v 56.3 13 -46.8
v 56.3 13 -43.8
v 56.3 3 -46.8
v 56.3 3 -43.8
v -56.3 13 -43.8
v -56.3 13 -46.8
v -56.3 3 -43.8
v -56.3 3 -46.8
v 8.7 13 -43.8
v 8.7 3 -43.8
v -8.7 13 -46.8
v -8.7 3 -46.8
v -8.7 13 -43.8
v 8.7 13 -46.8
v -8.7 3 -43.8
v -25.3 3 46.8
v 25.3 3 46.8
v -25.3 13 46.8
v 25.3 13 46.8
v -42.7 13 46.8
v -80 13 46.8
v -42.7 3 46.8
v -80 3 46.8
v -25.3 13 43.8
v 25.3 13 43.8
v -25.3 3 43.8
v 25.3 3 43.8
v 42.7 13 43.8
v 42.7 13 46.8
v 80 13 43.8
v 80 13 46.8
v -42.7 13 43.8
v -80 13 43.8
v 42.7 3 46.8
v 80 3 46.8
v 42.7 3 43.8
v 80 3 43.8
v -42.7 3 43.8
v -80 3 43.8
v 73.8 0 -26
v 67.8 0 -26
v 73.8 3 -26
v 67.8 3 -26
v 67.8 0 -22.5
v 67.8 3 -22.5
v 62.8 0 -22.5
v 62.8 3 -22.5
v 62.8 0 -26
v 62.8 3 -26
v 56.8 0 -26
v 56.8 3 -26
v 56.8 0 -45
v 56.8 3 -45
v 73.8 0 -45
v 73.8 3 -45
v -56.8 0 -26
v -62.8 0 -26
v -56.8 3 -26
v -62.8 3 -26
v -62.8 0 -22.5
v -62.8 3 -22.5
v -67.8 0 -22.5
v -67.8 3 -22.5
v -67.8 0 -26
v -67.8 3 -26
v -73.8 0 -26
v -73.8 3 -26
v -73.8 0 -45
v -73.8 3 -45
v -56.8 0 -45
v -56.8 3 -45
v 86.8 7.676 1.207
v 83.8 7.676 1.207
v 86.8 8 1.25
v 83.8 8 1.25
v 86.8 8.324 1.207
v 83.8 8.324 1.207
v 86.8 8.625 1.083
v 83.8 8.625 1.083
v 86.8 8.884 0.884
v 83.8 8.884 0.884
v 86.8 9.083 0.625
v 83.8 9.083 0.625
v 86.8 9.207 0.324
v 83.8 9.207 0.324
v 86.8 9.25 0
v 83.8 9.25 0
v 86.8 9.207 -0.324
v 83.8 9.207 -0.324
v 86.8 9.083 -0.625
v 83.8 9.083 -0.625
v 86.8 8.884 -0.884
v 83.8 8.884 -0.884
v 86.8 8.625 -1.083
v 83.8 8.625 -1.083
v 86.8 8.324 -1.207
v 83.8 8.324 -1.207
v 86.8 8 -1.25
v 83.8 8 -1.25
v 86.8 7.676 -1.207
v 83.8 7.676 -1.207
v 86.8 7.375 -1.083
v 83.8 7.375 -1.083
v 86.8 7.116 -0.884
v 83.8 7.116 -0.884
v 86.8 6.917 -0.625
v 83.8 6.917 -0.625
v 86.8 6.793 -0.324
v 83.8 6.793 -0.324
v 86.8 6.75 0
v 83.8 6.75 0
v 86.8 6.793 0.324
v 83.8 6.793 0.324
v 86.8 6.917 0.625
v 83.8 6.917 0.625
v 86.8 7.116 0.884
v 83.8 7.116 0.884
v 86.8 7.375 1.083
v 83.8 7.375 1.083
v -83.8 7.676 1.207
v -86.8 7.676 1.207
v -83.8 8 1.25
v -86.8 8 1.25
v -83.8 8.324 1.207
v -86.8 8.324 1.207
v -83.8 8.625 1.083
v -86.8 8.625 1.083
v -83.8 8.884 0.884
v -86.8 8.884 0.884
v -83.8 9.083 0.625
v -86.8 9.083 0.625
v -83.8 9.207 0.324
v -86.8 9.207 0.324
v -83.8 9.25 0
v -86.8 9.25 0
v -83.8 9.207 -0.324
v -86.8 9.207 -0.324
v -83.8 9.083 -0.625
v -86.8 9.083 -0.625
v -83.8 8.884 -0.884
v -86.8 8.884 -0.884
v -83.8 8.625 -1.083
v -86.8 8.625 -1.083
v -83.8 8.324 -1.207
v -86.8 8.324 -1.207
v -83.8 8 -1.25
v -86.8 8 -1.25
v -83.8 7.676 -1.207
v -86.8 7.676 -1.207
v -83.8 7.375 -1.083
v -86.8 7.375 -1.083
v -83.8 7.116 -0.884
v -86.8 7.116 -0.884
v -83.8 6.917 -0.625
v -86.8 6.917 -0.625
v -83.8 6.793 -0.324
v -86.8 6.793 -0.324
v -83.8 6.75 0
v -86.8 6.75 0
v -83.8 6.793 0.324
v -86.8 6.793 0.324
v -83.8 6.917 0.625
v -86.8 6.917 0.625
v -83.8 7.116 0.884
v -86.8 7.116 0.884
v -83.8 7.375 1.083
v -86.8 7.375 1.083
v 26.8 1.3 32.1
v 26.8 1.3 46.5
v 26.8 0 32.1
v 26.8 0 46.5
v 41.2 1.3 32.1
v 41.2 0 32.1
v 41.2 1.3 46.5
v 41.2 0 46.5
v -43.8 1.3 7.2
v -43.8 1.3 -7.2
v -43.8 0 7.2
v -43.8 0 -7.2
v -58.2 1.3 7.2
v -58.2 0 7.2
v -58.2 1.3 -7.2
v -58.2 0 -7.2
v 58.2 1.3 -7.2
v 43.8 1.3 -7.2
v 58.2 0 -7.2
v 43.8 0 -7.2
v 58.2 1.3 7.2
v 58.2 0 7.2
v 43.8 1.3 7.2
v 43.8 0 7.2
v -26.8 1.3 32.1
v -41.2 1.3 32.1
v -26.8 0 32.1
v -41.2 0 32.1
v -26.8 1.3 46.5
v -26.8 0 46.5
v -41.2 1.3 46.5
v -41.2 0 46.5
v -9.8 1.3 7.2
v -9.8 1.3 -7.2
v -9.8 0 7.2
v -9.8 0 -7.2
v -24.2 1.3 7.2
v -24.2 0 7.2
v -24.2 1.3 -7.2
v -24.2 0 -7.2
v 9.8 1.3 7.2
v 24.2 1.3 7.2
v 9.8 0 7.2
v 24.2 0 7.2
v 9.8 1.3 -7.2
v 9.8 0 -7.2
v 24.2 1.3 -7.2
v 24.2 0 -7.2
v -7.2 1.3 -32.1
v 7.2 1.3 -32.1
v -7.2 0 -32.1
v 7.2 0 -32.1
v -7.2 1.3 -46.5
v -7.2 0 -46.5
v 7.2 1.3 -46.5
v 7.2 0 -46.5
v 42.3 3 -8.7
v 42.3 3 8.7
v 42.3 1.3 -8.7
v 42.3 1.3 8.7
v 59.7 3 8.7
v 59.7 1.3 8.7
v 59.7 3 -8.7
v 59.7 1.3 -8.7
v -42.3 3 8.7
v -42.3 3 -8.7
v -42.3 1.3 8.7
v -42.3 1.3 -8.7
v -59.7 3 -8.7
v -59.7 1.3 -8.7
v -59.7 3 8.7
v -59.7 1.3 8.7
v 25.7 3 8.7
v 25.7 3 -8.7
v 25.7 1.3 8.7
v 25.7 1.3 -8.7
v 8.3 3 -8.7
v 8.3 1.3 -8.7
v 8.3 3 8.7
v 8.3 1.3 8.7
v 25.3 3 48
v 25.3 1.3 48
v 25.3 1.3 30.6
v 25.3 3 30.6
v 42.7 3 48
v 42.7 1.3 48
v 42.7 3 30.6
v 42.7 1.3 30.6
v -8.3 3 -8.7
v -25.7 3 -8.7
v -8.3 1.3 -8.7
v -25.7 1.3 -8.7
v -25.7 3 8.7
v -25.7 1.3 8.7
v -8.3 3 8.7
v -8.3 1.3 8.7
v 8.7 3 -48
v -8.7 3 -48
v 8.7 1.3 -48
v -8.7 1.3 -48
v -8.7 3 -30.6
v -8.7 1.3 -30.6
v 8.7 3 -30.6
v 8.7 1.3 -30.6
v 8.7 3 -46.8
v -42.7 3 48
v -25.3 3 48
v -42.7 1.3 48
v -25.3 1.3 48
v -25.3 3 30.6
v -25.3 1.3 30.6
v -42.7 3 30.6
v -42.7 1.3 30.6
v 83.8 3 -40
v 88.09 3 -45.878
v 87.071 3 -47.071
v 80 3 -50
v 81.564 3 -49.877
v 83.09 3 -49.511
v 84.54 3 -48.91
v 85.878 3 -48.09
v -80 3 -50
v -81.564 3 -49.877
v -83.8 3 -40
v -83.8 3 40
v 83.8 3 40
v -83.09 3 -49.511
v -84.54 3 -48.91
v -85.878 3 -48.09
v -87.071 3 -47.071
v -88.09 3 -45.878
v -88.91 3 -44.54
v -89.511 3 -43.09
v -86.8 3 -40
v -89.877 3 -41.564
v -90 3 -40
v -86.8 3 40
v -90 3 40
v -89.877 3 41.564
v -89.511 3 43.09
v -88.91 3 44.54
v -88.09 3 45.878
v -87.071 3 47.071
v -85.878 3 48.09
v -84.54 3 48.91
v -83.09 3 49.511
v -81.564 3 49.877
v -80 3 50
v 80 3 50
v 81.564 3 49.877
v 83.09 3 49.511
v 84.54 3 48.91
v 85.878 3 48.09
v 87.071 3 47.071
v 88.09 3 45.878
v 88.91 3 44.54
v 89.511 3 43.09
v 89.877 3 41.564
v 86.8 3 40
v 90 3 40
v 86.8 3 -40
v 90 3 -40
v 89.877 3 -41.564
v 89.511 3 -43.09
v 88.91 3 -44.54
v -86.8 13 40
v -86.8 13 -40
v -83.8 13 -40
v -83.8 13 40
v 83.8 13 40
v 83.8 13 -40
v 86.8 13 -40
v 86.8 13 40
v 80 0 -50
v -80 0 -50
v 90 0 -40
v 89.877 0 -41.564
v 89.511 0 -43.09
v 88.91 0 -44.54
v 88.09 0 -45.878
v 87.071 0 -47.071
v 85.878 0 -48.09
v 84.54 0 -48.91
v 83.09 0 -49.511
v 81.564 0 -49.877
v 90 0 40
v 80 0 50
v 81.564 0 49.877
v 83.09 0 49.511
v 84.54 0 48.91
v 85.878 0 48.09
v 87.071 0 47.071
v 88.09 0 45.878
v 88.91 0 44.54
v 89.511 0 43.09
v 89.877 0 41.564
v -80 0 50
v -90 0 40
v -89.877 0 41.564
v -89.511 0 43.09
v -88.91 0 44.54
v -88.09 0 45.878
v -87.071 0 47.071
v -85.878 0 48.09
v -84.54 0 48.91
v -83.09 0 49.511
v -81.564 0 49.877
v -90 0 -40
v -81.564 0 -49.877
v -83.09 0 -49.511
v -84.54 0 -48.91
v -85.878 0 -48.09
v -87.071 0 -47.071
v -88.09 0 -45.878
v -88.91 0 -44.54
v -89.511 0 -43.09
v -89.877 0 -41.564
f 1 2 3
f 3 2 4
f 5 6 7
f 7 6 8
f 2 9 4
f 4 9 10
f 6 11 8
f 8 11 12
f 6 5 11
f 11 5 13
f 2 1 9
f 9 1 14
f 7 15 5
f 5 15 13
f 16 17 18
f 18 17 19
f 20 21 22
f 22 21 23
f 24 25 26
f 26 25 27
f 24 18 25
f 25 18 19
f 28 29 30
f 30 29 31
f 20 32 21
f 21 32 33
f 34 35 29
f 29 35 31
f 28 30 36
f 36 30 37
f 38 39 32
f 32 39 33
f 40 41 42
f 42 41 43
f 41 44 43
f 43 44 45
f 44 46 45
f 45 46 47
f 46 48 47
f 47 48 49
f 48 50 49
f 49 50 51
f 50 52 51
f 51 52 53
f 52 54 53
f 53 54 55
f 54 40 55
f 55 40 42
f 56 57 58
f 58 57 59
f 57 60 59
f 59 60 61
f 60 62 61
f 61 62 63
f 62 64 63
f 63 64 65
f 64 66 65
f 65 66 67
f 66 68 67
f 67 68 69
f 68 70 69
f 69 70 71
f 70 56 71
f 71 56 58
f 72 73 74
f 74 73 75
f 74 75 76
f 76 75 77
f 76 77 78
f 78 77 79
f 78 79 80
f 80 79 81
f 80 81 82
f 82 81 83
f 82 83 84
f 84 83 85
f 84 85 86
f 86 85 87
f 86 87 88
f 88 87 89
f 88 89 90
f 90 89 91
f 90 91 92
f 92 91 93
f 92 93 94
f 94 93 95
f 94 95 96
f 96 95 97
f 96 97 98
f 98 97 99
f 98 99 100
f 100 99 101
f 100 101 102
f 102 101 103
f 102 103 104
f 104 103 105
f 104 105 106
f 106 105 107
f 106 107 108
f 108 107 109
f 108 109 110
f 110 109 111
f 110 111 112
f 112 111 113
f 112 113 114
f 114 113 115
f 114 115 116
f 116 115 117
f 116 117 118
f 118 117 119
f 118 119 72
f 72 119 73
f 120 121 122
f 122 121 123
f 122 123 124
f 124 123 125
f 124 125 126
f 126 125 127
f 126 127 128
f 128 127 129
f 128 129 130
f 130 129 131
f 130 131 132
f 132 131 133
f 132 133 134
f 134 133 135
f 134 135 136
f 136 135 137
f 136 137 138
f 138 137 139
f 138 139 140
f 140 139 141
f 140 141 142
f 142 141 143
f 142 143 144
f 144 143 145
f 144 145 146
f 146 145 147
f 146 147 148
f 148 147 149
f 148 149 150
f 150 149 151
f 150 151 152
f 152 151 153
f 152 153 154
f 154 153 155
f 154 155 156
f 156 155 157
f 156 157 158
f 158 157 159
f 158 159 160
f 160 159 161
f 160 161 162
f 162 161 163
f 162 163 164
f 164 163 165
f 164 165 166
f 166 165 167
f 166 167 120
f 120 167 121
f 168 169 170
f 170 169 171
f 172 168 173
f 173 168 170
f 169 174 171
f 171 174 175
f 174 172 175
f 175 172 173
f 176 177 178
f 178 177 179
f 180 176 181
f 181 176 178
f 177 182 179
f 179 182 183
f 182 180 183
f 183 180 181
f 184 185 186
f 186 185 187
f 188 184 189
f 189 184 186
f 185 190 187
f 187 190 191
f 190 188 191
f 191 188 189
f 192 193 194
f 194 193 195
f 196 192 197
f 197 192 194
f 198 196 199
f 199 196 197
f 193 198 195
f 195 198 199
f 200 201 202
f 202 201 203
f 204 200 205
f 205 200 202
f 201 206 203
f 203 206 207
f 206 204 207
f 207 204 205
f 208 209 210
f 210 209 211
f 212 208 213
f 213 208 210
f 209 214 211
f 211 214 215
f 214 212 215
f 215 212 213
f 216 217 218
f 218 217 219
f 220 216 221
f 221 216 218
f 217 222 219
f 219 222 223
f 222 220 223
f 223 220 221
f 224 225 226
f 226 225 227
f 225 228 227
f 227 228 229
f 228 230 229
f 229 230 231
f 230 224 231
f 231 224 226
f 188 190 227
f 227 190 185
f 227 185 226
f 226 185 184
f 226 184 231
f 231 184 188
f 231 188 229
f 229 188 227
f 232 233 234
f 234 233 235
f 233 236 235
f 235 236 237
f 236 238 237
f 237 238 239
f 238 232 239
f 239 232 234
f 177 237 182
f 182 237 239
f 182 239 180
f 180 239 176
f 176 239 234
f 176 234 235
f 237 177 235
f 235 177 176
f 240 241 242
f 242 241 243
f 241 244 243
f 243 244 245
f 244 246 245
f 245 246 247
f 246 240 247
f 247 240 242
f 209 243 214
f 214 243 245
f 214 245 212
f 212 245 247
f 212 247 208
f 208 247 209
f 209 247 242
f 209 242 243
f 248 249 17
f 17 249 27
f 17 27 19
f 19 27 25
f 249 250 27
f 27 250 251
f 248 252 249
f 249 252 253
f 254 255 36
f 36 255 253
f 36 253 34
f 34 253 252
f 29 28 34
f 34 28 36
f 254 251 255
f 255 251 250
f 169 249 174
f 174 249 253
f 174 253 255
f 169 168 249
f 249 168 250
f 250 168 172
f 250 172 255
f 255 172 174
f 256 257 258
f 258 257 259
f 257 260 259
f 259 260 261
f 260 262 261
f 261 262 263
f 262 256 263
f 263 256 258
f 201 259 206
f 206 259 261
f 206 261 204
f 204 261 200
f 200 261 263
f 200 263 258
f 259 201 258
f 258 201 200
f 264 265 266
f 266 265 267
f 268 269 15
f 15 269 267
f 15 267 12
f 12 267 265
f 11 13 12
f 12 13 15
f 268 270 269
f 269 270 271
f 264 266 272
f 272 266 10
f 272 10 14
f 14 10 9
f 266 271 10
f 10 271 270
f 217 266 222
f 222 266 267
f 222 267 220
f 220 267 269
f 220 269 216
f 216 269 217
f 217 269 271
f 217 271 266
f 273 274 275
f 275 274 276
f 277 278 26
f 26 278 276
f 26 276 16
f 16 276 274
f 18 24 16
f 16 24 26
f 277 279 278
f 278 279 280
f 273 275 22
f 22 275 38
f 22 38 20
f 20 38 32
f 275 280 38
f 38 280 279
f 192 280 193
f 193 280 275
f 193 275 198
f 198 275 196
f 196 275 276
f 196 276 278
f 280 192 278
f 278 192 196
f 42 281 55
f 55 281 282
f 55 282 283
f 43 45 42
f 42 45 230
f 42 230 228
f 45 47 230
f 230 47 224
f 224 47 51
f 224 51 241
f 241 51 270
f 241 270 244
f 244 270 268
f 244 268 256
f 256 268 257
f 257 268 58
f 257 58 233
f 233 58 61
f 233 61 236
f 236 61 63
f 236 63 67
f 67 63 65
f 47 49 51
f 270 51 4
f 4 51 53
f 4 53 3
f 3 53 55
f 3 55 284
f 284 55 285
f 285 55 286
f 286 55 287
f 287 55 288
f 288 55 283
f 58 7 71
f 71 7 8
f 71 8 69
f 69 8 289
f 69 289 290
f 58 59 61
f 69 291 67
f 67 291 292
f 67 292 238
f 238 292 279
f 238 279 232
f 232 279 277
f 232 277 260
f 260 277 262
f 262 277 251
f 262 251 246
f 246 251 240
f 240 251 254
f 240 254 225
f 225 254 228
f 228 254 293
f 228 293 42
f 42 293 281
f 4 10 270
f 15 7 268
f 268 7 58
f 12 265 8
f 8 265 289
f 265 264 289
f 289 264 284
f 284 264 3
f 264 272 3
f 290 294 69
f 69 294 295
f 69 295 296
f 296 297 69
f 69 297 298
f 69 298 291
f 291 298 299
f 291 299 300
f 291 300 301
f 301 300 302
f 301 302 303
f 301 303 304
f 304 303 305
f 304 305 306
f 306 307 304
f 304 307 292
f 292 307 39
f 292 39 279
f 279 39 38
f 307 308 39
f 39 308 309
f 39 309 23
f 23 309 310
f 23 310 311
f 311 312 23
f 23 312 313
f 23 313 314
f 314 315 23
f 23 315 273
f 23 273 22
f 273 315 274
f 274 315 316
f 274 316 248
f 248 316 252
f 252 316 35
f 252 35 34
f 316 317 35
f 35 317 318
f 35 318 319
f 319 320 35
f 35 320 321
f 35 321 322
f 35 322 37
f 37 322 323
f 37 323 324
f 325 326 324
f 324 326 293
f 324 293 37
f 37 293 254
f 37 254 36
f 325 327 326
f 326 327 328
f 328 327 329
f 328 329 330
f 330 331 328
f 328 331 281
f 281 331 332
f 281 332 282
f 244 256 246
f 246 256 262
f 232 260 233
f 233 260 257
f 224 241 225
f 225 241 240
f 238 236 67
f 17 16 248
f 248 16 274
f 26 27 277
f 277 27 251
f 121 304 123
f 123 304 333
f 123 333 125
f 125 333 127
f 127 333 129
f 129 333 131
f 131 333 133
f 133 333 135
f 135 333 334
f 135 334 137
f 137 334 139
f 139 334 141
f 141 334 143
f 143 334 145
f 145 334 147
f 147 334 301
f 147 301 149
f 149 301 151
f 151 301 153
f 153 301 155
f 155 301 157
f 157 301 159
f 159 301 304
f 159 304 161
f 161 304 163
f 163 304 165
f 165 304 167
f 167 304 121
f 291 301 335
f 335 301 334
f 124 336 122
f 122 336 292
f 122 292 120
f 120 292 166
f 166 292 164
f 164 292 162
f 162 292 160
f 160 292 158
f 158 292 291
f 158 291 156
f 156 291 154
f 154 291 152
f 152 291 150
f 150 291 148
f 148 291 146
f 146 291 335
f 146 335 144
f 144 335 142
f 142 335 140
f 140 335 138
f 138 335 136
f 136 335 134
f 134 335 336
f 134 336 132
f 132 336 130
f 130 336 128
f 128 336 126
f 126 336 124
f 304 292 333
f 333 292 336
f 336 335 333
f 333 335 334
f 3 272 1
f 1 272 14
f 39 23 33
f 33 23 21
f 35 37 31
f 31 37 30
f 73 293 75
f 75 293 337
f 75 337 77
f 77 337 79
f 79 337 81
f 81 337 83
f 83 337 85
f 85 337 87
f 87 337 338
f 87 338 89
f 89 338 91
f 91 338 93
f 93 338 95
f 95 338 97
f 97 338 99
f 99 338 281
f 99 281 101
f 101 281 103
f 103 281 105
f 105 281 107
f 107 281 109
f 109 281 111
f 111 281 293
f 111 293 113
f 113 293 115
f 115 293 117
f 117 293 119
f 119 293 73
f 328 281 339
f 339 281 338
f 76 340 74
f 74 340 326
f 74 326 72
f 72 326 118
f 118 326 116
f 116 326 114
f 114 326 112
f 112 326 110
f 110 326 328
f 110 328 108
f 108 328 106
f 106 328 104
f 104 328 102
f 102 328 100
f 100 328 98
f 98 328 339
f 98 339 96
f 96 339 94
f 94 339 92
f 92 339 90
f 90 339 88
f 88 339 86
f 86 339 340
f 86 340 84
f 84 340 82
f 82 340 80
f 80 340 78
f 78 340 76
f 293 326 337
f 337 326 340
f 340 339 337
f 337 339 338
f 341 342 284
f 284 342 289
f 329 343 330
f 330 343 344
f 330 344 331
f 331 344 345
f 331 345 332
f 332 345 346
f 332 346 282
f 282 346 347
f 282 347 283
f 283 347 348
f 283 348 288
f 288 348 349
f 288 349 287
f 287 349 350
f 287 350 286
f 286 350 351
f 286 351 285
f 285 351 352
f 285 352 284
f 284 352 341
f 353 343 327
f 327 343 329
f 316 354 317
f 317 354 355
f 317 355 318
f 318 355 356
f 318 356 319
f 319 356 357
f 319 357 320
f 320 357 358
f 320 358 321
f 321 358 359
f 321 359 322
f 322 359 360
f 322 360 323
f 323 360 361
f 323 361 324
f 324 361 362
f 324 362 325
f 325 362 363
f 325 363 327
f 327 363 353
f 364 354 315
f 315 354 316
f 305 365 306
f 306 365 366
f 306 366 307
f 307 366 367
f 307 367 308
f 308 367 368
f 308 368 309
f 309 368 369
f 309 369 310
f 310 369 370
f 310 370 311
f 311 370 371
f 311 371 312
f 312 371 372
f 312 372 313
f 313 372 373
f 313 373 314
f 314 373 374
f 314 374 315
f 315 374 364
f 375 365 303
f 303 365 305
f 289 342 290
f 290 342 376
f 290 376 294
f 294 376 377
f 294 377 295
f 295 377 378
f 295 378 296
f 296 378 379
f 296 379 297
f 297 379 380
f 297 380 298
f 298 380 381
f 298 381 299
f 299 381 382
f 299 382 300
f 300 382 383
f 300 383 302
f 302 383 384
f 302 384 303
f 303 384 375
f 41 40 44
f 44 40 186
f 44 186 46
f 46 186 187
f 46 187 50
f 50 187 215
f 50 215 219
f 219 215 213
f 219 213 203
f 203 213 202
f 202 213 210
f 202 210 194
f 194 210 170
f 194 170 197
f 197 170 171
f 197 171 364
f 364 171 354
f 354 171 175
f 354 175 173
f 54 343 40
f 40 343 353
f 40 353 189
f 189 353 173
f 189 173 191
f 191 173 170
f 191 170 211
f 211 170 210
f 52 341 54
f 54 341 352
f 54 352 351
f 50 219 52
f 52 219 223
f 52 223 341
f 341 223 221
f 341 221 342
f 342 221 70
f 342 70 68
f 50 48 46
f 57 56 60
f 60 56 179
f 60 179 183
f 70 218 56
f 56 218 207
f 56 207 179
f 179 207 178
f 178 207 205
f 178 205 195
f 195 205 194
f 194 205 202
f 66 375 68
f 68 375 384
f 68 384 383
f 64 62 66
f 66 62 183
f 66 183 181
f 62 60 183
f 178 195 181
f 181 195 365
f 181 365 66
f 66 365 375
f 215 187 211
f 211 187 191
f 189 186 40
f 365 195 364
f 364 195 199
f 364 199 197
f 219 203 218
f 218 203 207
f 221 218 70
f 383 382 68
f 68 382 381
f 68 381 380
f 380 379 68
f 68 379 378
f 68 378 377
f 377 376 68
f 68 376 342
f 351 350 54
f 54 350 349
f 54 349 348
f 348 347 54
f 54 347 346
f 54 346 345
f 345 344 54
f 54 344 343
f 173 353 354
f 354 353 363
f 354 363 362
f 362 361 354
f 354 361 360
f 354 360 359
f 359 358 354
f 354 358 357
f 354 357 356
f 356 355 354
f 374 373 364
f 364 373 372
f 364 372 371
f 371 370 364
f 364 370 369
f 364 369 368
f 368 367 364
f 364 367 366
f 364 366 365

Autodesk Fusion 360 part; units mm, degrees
sketch "Top" plane through (0, 0, 0) normal (0, 1, 0) x (1, 0, 0)
  line L0 (-80, 50) -> (80, 50)
  line L1 (90, 40) -> (90, -40)
  line L2 (80, -50) -> (-80, -50)
  line L3 (-90, -40) -> (-90, 40)
  line L4 (-90, 50) -> (90, -50) construction
  line L5 (90, 50) -> (-90, -50) construction
  arc A0 (-80, 50) -> (-90, 40) centre (-80, 40) ccw
  arc A1 (90, 40) -> (80, 50) centre (80, 40) ccw
  arc A2 (80, -50) -> (90, -40) centre (80, -40) ccw
  arc A3 (-90, -40) -> (-80, -50) centre (-80, -40) ccw
  dimension "d310" = 180
  dimension "d311" = 100
  dimension "d312" = 10
extrude "Top Extrusion" add sketch "Top" along normal blind 3
sketch "Tabs" plane through (0, 3, 0) normal (0, 1, 0) x (-1, 0, 0)
  arc A0 (80, -50) -> (90, -40) centre (80, -40) ccw
  line L0 (90, -40) -> (90, 40)
  arc A1 (90, 40) -> (80, 50) centre (80, 40) ccw
  line L1 (80, 50) -> (-80, 50)
  arc A2 (-80, 50) -> (-90, 40) centre (-80, 40) ccw
  line L2 (-90, 40) -> (-90, -40)
  arc A3 (-90, -40) -> (-80, -50) centre (-80, -40) ccw
  line L3 (-80, -50) -> (80, -50)
  line L4 (86.8, -40) -> (83.8, -40)
  line L5 (83.8, -40) -> (83.8, 40)
  line L6 (83.8, 40) -> (86.8, 40)
  line L7 (86.8, 40) -> (86.8, -40)
  line L8 (86.8, -40) -> (83.8, 40) construction
  line L9 (83.8, -40) -> (86.8, 40) construction
  line L10 (80, -46.8) -> (-80, -46.8)
  line L11 (-80, -46.8) -> (-80, -43.8)
  line L12 (-80, -43.8) -> (80, -43.8)
  line L13 (80, -43.8) -> (80, -46.8)
  line L14 (80, -46.8) -> (-80, -43.8) construction
  line L15 (-80, -46.8) -> (80, -43.8) construction
  line L16 (80, 43.8) -> (-80, 43.8)
  line L17 (-80, 43.8) -> (-80, 46.8)
  line L18 (-80, 46.8) -> (80, 46.8)
  line L19 (80, 46.8) -> (80, 43.8)
  line L20 (80, 43.8) -> (-80, 46.8) construction
  line L21 (-80, 43.8) -> (80, 46.8) construction
  line L22 (-83.8, -40) -> (-86.8, -40)
  line L23 (-86.8, -40) -> (-86.8, 40)
  line L24 (-86.8, 40) -> (-83.8, 40)
  line L25 (-83.8, 40) -> (-83.8, -40)
  line L26 (-83.8, -40) -> (-86.8, 40) construction
  line L27 (-86.8, -40) -> (-83.8, 40) construction
  point P0 (85.3, 0)
  point P1 (0, -45.3)
  point P2 (0, 45.3)
  point P3 (-85.3, 0)
  dimension "d315" = 3
  dimension "d316" = 10
  dimension "d317" = 10
  dimension "d318" = 3.2
  dimension "d319" = 3
  dimension "d320" = 10
  dimension "d321" = 10
  dimension "d322" = 3.2
  dimension "d324" = 3
  dimension "d325" = 10
  dimension "d326" = 10
  dimension "d327" = 3
  dimension "d329" = 10
  dimension "d330" = 10
  dimension "d333" = 3.2
  dimension "d334" = 3.2
extrude "Tabs Extrusion" add sketch "Tabs" along normal blind 10 contours L4 L5 L6 L7 | L10 L11 L12 L13 | L16 L17 L18 L19 | L22 L23 L24 L25
sketch "Switches" plane through (0, 3, 0) normal (0, 1, 0) x (-1, 0, 0)
  line L0 (86.8, 40) -> (86.8, -40)
  line L1 (86.8, -40) -> (83.8, -40)
  line L2 (83.8, -40) -> (83.8, 40)
  line L3 (83.8, 40) -> (86.8, 40)
  line L4 (80, -43.8) -> (80, -46.8)
  line L5 (80, -46.8) -> (-80, -46.8)
  line L6 (-80, -46.8) -> (-80, -43.8)
  line L7 (-80, -43.8) -> (80, -43.8)
  line L8 (80, 46.8) -> (80, 43.8)
  line L9 (80, 43.8) -> (-80, 43.8)
  line L10 (-80, 43.8) -> (-80, 46.8)
  line L11 (-80, 46.8) -> (80, 46.8)
  line L12 (-83.8, 40) -> (-83.8, -40)
  line L13 (-83.8, -40) -> (-86.8, -40)
  line L14 (-86.8, -40) -> (-86.8, 40)
  line L15 (-86.8, 40) -> (-83.8, 40)
  arc A0 (80, -50) -> (90, -40) centre (80, -40) ccw
  line L16 (90, -40) -> (90, 40)
  arc A1 (90, 40) -> (80, 50) centre (80, 40) ccw
  line L17 (80, 50) -> (-80, 50)
  arc A2 (-80, 50) -> (-90, 40) centre (-80, 40) ccw
  line L18 (-90, 40) -> (-90, -40)
  arc A3 (-90, -40) -> (-80, -50) centre (-80, -40) ccw
  line L19 (-80, -50) -> (80, -50)
  line L20 (-59.7, 8.7) -> (-42.3, 8.7)
  line L21 (-42.3, 8.7) -> (-42.3, -8.7)
  line L22 (-58.2, -7.2) -> (-58.2, 7.2)
  line L23 (-42.3, -8.7) -> (-59.7, -8.7)
  line L24 (-43.8, 7.2) -> (-43.8, -7.2)
  line L25 (-58.2, 7.2) -> (-43.8, 7.2)
  line L26 (-43.8, -7.2) -> (-58.2, 7.2) construction
  line L27 (-59.7, -8.7) -> (-59.7, 8.7)
  line L28 (-59.7, -8.7) -> (-42.3, 8.7) construction
  line L29 (-58.2, -7.2) -> (-43.8, 7.2) construction
  line L30 (-42.3, -8.7) -> (-59.7, 8.7) construction
  line L31 (-43.8, -7.2) -> (-58.2, -7.2)
  line L32 (24.2, 7.2) -> (24.2, -7.2)
  line L33 (8.3, -8.7) -> (8.3, 8.7)
  line L34 (25.7, -8.7) -> (8.3, 8.7) construction
  line L35 (9.8, 7.2) -> (24.2, 7.2)
  line L36 (24.2, -7.2) -> (9.8, 7.2) construction
  line L37 (8.3, -8.7) -> (25.7, 8.7) construction
  line L38 (9.8, -7.2) -> (24.2, 7.2) construction
  line L39 (24.2, -7.2) -> (9.8, -7.2)
  line L40 (25.7, 8.7) -> (25.7, -8.7)
  line L41 (9.8, -7.2) -> (9.8, 7.2)
  line L42 (25.7, -8.7) -> (8.3, -8.7)
  line L43 (8.3, 8.7) -> (25.7, 8.7)
  line L44 (-26.8, 32.1) -> (-41.2, 46.5) construction
  line L45 (-41.2, 46.5) -> (-26.8, 46.5)
  line L46 (-25.3, 30.6) -> (-42.7, 30.6)
  line L47 (-42.7, 48) -> (-25.3, 48)
  line L48 (-41.2, 32.1) -> (-41.2, 46.5)
  line L49 (-25.3, 48) -> (-25.3, 30.6)
  line L50 (-42.7, 30.6) -> (-42.7, 48)
  line L51 (-25.3, 30.6) -> (-42.7, 48) construction
  line L52 (-26.8, 32.1) -> (-41.2, 32.1)
  line L53 (-41.2, 32.1) -> (-26.8, 46.5) construction
  line L54 (-42.7, 30.6) -> (-25.3, 48) construction
  line L55 (-26.8, 46.5) -> (-26.8, 32.1)
  line L56 (25.3, 30.6) -> (42.7, 48) construction
  line L57 (26.8, 46.5) -> (41.2, 46.5)
  line L58 (42.7, 48) -> (42.7, 30.6)
  line L59 (26.8, 32.1) -> (41.2, 46.5) construction
  line L60 (41.2, 32.1) -> (26.8, 32.1)
  line L61 (25.3, 30.6) -> (25.3, 48)
  line L62 (41.2, 46.5) -> (41.2, 32.1)
  line L63 (25.3, 48) -> (42.7, 48)
  line L64 (42.7, 30.6) -> (25.3, 48) construction
  line L65 (42.7, 30.6) -> (25.3, 30.6)
  line L66 (26.8, 32.1) -> (26.8, 46.5)
  line L67 (41.2, 32.1) -> (26.8, 46.5) construction
  line L68 (-8.7, -48) -> (-8.7, -30.6)
  line L69 (-7.2, -46.5) -> (-7.2, -32.1)
  line L70 (7.2, -32.1) -> (7.2, -46.5)
  line L71 (-7.2, -46.5) -> (7.2, -32.1) construction
  line L72 (8.7, -30.6) -> (8.7, -48)
  line L73 (8.7, -48) -> (-8.7, -48)
  line L74 (7.2, -46.5) -> (-7.2, -32.1) construction
  line L75 (8.7, -48) -> (-8.7, -30.6) construction
  line L76 (-8.7, -48) -> (8.7, -30.6) construction
  line L77 (-8.7, -30.6) -> (8.7, -30.6)
  line L78 (7.2, -46.5) -> (-7.2, -46.5)
  line L79 (-7.2, -32.1) -> (7.2, -32.1)
  line L80 (42.3, -8.7) -> (42.3, 8.7)
  line L81 (43.8, 7.2) -> (58.2, 7.2)
  line L82 (42.3, 8.7) -> (59.7, 8.7)
  line L83 (59.7, -8.7) -> (42.3, -8.7)
  line L84 (58.2, -7.2) -> (43.8, -7.2)
  line L85 (58.2, 7.2) -> (58.2, -7.2)
  line L86 (42.3, -8.7) -> (59.7, 8.7) construction
  line L87 (59.7, -8.7) -> (42.3, 8.7) construction
  line L88 (43.8, -7.2) -> (43.8, 7.2)
  line L89 (43.8, -7.2) -> (58.2, 7.2) construction
  line L90 (58.2, -7.2) -> (43.8, 7.2) construction
  line L91 (59.7, 8.7) -> (59.7, -8.7)
  line L92 (-25.7, 8.7) -> (-8.3, 8.7)
  line L93 (-25.7, -8.7) -> (-8.3, 8.7) construction
  line L94 (-25.7, -8.7) -> (-25.7, 8.7)
  line L95 (-9.8, 7.2) -> (-9.8, -7.2)
  line L96 (-9.8, -7.2) -> (-24.2, -7.2)
  line L97 (-8.3, -8.7) -> (-25.7, 8.7) construction
  line L98 (-24.2, -7.2) -> (-9.8, 7.2) construction
  line L99 (-8.3, -8.7) -> (-25.7, -8.7)
  line L100 (-24.2, -7.2) -> (-24.2, 7.2)
  line L101 (-9.8, -7.2) -> (-24.2, 7.2) construction
  line L102 (-8.3, 8.7) -> (-8.3, -8.7)
  line L103 (-24.2, 7.2) -> (-9.8, 7.2)
  line L104 (80, 50) -> (-80, 50)
  point P0 (-51, 0)
  point P1 (17, 0)
  point P2 (-34, 39.3)
  point P3 (34, 39.3)
  point P4 (0, -39.3)
  point P5 (51, 0)
  point P6 (-17, 0)
  dimension "d345" = 14.4
  dimension "d346" = 14.4
  dimension "d347" = 1.5
  dimension "d348" = 1.5
  dimension "d349" = 1.5
  dimension "d350" = 1.5
  dimension "d363" = 14.4
  dimension "d364" = 14.4
  dimension "d365" = 1.5
  dimension "d366" = 1.5
  dimension "d367" = 1.5
  dimension "d368" = 1.5
  dimension "d369" = 14.4
  dimension "d370" = 14.4
  dimension "d371" = 1.5
  dimension "d372" = 1.5
  dimension "d373" = 1.5
  dimension "d374" = 1.5
  dimension "d375" = 14.4
  dimension "d376" = 14.4
  dimension "d377" = 1.5
  dimension "d378" = 1.5
  dimension "d379" = 1.5
  dimension "d380" = 1.5
  dimension "d381" = 14.4
  dimension "d382" = 14.4
  dimension "d383" = 1.5
  dimension "d384" = 1.5
  dimension "d385" = 1.5
  dimension "d386" = 1.5
  dimension "d387" = 14.4
  dimension "d388" = 14.4
  dimension "d389" = 1.5
  dimension "d390" = 1.5
  dimension "d391" = 1.5
  dimension "d392" = 1.5
  dimension "d393" = 14.4
  dimension "d394" = 14.4
  dimension "d395" = 1.5
  dimension "d396" = 1.5
  dimension "d397" = 1.5
  dimension "d398" = 1.5
  dimension "d406" = 34
  dimension "d407" = 34
  dimension "d408" = 34
  dimension "d409" = 17
  dimension "d445" = 2
  dimension "d446" = 2
  dimension "d447" = 2
  dimension "d459" = 17
  dimension "d460" = 17
extrude "Switches Extrusion" cut sketch "Switches" against normal blind 1.7 contours L5 L7 L68 L69 L70 L72 L78 | L7 L68 L69 L70 L72 L77 L79 | L5 L68 L72 L73 | L9 L11 L57 L58 L61 L62 L66 | L11 L58 L61 L63 | L9 L58 L60 L61 L62 L65 L66 | L9 L11 L45 L48 L49 L50 L55 | L11 L47 L49 L50 | L9 L46 L48 L49 L50 L52 L55 | L20 L21 L23 L27 | L33 L40 L42 L43 | L80 L82 L83 L91 | L92 L94 L99 L102
extrude "Switches Hole Extrusion" cut sketch "Switches" along normal blind 3 from surface at -3 contours L7 L69 L70 L78 | L7 L69 L70 L79 | L9 L60 L62 L66 | L9 L57 L62 L66 | L9 L48 L52 L55 | L9 L45 L48 L55 | L22 L24 L25 L31 | L32 L35 L39 L41 | L81 L84 L85 L88 | L95 L96 L100 L103
sketch "Tab Holes" plane through (0, 0, 0) normal (1, 0, 0) x (0, 0, -1)
  circle A0 centre (0, 8) radius 1.25
  line L0 (-40, 3) -> (40, 3)
  dimension "d418" = 2.5
  dimension "d419" = 5
extrude "Tab Holes Extrusion" cut sketch "Tab Holes" along normal through all and the other way through all
sketch "Encoders" plane through (0, 3, 0) normal (0, 1, 0) x (-1, 0, 0)
  line L0 (73.8, -26) -> (56.8, -26)
  line L1 (56.8, -26) -> (56.8, -45)
  line L2 (56.8, -45) -> (73.8, -45)
  line L3 (73.8, -45) -> (73.8, -26)
  line L4 (73.8, -26) -> (56.8, -45) construction
  line L5 (56.8, -26) -> (73.8, -45) construction
  line L6 (67.8, -26) -> (62.8, -26)
  line L7 (62.8, -26) -> (62.8, -22.5)
  line L8 (62.8, -22.5) -> (67.8, -22.5)
  line L9 (67.8, -22.5) -> (67.8, -26)
  arc A0 (80, -50) -> (90, -40) centre (80, -40) ccw
  line L10 (90, -40) -> (90, 40)
  arc A1 (90, 40) -> (80, 50) centre (80, 40) ccw
  line L11 (80, 50) -> (-80, 50)
  arc A2 (-80, 50) -> (-90, 40) centre (-80, 40) ccw
  line L12 (-90, 40) -> (-90, -40)
  arc A3 (-90, -40) -> (-80, -50) centre (-80, -40) ccw
  line L13 (-80, -50) -> (80, -50)
  line L14 (-83.8, 40) -> (-83.8, -40)
  line L15 (-83.8, -40) -> (-86.8, -40)
  line L16 (-86.8, -40) -> (-86.8, 40)
  line L17 (-86.8, 40) -> (-83.8, 40)
  line L18 (80, 46.8) -> (80, 43.8)
  line L19 (80, 43.8) -> (42.7, 43.8)
  line L20 (-80, 43.8) -> (-80, 46.8)
  line L21 (-25.3, 46.8) -> (25.3, 46.8)
  line L22 (80, -43.8) -> (80, -46.8)
  line L23 (-8.7, -46.8) -> (-80, -46.8)
  line L24 (-80, -46.8) -> (-80, -43.8)
  line L25 (-80, -43.8) -> (-8.7, -43.8)
  line L26 (86.8, 40) -> (86.8, -40)
  line L27 (86.8, -40) -> (83.8, -40)
  line L28 (83.8, -40) -> (83.8, 40)
  line L29 (83.8, 40) -> (86.8, 40)
  line L30 (25.3, 48) -> (42.7, 48)
  line L31 (42.7, 48) -> (42.7, 46.8)
  line L32 (42.7, 30.6) -> (25.3, 30.6)
  line L33 (25.3, 46.8) -> (25.3, 48)
  line L34 (8.7, -48) -> (-8.7, -48)
  line L35 (-8.7, -48) -> (-8.7, -46.8)
  line L36 (-8.7, -30.6) -> (8.7, -30.6)
  line L37 (8.7, -30.6) -> (8.7, -43.8)
  line L38 (25.7, -8.7) -> (8.3, -8.7)
  line L39 (8.3, -8.7) -> (8.3, 8.7)
  line L40 (8.3, 8.7) -> (25.7, 8.7)
  line L41 (25.7, 8.7) -> (25.7, -8.7)
  line L42 (-25.3, 48) -> (-25.3, 46.8)
  line L43 (-25.3, 30.6) -> (-42.7, 30.6)
  line L44 (-42.7, 46.8) -> (-42.7, 48)
  line L45 (-42.7, 48) -> (-25.3, 48)
  line L46 (-25.7, -8.7) -> (-25.7, 8.7)
  line L47 (-25.7, 8.7) -> (-8.3, 8.7)
  line L48 (-8.3, 8.7) -> (-8.3, -8.7)
  line L49 (-8.3, -8.7) -> (-25.7, -8.7)
  line L50 (42.3, -8.7) -> (42.3, 8.7)
  line L51 (42.3, 8.7) -> (59.7, 8.7)
  line L52 (59.7, 8.7) -> (59.7, -8.7)
  line L53 (59.7, -8.7) -> (42.3, -8.7)
  line L54 (-42.3, 8.7) -> (-42.3, -8.7)
  line L55 (-42.3, -8.7) -> (-59.7, -8.7)
  line L56 (-59.7, -8.7) -> (-59.7, 8.7)
  line L57 (-59.7, 8.7) -> (-42.3, 8.7)
  line L58 (-56.8, -26) -> (-73.8, -26)
  line L59 (-67.8, -22.5) -> (-62.8, -22.5)
  line L60 (-73.8, -45) -> (-56.8, -45)
  line L61 (-67.8, -26) -> (-67.8, -22.5)
  line L62 (-73.8, -26) -> (-73.8, -45)
  line L63 (-62.8, -22.5) -> (-62.8, -26)
  line L64 (-56.8, -26) -> (-73.8, -45) construction
  line L65 (-73.8, -26) -> (-56.8, -45) construction
  line L66 (-56.8, -45) -> (-56.8, -26)
  line L67 (-62.8, -26) -> (-67.8, -26)
  line L68 (42.7, 46.8) -> (80, 46.8)
  line L69 (42.7, 43.8) -> (42.7, 30.6)
  line L70 (25.3, 30.6) -> (25.3, 43.8)
  line L71 (25.3, 43.8) -> (-25.3, 43.8)
  line L72 (-25.3, 43.8) -> (-25.3, 30.6)
  line L73 (-42.7, 30.6) -> (-42.7, 43.8)
  line L74 (-42.7, 43.8) -> (-80, 43.8)
  line L75 (-80, 46.8) -> (-42.7, 46.8)
  line L76 (-8.7, -43.8) -> (-8.7, -30.6)
  line L77 (8.7, -43.8) -> (80, -43.8)
  line L78 (80, -46.8) -> (8.7, -46.8)
  line L79 (8.7, -46.8) -> (8.7, -48)
  line L80 (56.3, -43.8) -> (80, -43.8)
  line L81 (80, -43.8) -> (80, -46.8)
  line L82 (80, -46.8) -> (56.3, -46.8)
  line L83 (56.3, -46.8) -> (56.3, -43.8)
  line L84 (-80, -43.8) -> (-56.3, -43.8)
  line L85 (-56.3, -43.8) -> (-56.3, -46.8)
  line L86 (-56.3, -46.8) -> (-80, -46.8)
  line L87 (-80, -46.8) -> (-80, -43.8)
  point P0 (65.3, -35.5)
  point P1 (-65.3, -35.5)
  dimension "d421" = 17
  dimension "d422" = 19
  dimension "d423" = 5
  dimension "d424" = 3.5
  dimension "d425" = 2.5
  dimension "d431" = 17
  dimension "d432" = 19
  dimension "d433" = 5
  dimension "d434" = 3.5
  dimension "d435" = 2.5
  dimension "d437" = 10
  dimension "d439" = 10
  dimension "d443" = 5
  dimension "d444" = 5
  dimension "d461" = 23.7
  dimension "d462" = 3
  dimension "d463" = 0.5
  dimension "d464" = 23.7
  dimension "d465" = 3
  dimension "d468" = 0.5
extrude "Right Encoder Extrusion" cut sketch "Encoders" along normal blind 3 from surface at -3 contours L0 L1 L3 L6 L77 L80 | L0 L6 L7 L8 L9 | L1 L2 L3 L77 L80
extrude "Left Encoder Extrusion" cut sketch "Encoders" along normal blind 3 from surface at -3 contours L25 L60 L62 L66 L84 | L25 L58 L62 L66 L67 L84 | L58 L59 L61 L63 L67
extrude "Left Switch Tab Extrusion" cut sketch "Switches" along normal through all contours L9 L11 L45 L48 L49 L50 L55 | L9 L45 L48 L55
extrude "Right Switch Tab Extrusion" cut sketch "Switches" along normal through all contours L9 L11 L57 L58 L61 L62 L66 | L9 L57 L62 L66
extrude "Top Switch Tab Extrusion" cut sketch "Switches" along normal through all contours L5 L7 L68 L69 L70 L72 L78 | L7 L69 L70 L78
extrude "Encoders Tab Extrusion" cut sketch "Encoders" along normal through all contours L1 L2 L3 L22 L77 L78 L80 L81 L82 L83 | L1 L2 L3 L77 L80 | L23 L24 L25 L60 L62 L66 L84 L85 L86 L87 | L25 L60 L62 L66 L84
equation "d409 = ( 34 / 2 ) * 1 mm"
equation "d413 = -( 3 mm - 1.3 mm )"
equation "d419 = ( 10 / 2 ) * 1 mm"
equation "d425 = ( 5 / 2 ) * 1 mm"
equation "d435 = ( 5 / 2 ) * 1 mm"
equation "d459 = ( 34 / 2 ) * 1 mm"
equation "d460 = ( 34 / 2 ) * 1 mm"
